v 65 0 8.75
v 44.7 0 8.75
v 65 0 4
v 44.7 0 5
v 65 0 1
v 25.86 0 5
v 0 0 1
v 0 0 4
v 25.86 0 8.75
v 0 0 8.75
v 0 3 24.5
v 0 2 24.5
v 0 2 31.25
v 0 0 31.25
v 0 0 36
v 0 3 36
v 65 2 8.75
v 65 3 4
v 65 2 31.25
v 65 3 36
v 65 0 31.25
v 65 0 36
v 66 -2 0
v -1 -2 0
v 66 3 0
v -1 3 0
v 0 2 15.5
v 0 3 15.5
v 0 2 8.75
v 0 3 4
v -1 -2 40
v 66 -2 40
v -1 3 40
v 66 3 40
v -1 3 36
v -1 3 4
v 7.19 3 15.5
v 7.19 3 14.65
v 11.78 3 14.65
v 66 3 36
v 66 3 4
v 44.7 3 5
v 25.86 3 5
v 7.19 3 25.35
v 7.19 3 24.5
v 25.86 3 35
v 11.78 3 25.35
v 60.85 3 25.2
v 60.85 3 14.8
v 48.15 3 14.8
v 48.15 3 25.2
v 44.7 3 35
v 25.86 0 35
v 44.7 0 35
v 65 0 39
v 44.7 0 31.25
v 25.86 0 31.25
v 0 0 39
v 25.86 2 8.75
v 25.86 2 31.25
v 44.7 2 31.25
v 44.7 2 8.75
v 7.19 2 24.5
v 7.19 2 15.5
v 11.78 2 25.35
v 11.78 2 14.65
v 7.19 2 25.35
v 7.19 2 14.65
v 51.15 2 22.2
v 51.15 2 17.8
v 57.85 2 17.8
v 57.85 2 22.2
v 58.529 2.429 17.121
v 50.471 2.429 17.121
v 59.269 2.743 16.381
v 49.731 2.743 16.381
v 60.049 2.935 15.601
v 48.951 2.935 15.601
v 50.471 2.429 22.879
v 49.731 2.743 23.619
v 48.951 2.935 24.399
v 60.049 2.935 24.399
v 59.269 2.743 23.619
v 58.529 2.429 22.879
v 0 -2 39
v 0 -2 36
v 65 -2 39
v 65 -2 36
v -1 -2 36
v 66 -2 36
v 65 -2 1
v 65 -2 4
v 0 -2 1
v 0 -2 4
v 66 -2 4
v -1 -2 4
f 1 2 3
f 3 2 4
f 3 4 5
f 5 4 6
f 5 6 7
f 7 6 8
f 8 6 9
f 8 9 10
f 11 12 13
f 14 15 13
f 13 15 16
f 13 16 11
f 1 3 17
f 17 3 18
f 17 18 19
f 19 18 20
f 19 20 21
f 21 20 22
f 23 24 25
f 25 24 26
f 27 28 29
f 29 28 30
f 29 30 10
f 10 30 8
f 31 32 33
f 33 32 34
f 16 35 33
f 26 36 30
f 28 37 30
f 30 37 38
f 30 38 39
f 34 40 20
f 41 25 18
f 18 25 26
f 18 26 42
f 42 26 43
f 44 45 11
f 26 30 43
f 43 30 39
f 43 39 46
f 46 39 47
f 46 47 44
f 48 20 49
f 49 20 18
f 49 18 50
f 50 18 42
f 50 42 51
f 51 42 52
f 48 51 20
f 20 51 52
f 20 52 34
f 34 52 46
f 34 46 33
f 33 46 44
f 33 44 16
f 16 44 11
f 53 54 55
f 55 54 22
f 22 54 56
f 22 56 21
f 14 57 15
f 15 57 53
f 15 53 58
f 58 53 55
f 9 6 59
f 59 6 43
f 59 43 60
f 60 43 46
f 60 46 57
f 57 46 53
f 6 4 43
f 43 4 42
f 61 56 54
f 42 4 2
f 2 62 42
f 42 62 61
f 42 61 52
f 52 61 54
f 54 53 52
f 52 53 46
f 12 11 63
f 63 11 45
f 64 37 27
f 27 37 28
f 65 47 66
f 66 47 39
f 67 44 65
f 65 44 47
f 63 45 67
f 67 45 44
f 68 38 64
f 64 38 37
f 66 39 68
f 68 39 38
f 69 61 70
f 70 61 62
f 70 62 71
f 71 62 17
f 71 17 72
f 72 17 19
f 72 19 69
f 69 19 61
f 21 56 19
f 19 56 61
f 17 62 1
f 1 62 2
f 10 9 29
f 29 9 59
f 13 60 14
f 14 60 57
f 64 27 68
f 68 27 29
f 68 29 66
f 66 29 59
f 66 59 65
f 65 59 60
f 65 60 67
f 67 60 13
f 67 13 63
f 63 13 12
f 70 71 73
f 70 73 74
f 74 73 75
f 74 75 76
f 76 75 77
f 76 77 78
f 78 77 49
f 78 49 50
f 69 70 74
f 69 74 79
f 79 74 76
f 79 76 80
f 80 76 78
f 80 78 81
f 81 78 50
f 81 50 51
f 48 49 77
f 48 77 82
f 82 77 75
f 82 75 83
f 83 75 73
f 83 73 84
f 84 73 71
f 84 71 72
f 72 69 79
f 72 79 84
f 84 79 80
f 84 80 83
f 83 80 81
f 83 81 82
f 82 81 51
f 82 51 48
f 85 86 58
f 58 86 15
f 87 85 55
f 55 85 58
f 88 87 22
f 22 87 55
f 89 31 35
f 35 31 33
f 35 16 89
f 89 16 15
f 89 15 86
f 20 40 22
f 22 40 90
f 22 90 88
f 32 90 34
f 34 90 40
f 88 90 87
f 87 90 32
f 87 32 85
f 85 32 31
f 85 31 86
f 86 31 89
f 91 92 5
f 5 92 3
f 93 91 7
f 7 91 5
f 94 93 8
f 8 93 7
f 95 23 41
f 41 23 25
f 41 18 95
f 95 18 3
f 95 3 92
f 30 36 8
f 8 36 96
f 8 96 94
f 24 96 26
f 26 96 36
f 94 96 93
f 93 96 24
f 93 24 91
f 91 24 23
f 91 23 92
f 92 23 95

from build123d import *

# Parameters (mm, degrees)
BOSS_EXTRUDE1_DEPTH     = 3
SKETCH2_W               = 6.7
SKETCH2_H               = 4.4
SKETCH2_W_2             = 18.84
SKETCH2_H_2             = 30
CUT_EXTRUDE1_DEPTH      = 77.380625816
CUT_EXTRUDE2_DEPTH      = 61.059054272
CUT_EXTRUDE2_DEPTH_BACK = 61.059054272
SKETCH5_W               = 22.5
SKETCH5_H               = 2
FILLET3_R               = 5
BOSS_EXTRUDE2_DEPTH     = 5


with BuildPart() as part:
    # Sketch1 → Boss-Extrude1 (new body)
    with BuildSketch(Plane(origin=(0, 0, 0), x_dir=(1, 0, 0), z_dir=(0, 1, 0))):
        Polygon((65, -38), (65, -40), (63, -40), (2, -40), (0, -40), (0, -38), (0, -2), (0, 0), (2, 0), (63, 0), (65, 0), (65, -2), align=None)
    extrude(amount=BOSS_EXTRUDE1_DEPTH)

    # Sketch2 → Cut-Extrude1 (cut, through all)
    with BuildSketch(Plane(origin=(0, 3, 0), x_dir=(1, 0, 0), z_dir=(0, 1, 0))):
        with Locations((54.5, -20)):
            Rectangle(SKETCH2_W, SKETCH2_H)
        Polygon((11.78, -25.35), (7.19, -25.35), (7.19, -24.5), (-0.16, -24.5), (-0.16, -15.5), (7.19, -15.5), (7.19, -14.65), (11.78, -14.65), align=None)
        with Locations((35.28, -20)):
            Rectangle(SKETCH2_W_2, SKETCH2_H_2)
    extrude(amount=-CUT_EXTRUDE1_DEPTH, mode=Mode.SUBTRACT)

    # Sketch5 → Cut-Extrude2 (cut, two sides: drawn at the far end of the back side and taken through both)
    with BuildSketch(Plane.ZY.offset(-44.7).offset(-CUT_EXTRUDE2_DEPTH_BACK)):
        with Locations((20, 1)):
            Rectangle(SKETCH5_W, SKETCH5_H)
    extrude(amount=CUT_EXTRUDE2_DEPTH + CUT_EXTRUDE2_DEPTH_BACK, mode=Mode.SUBTRACT)

    # Fillet3
    # the kernel refuses this fillet: 5 mm, written as the material it takes off along each edge
    with BuildSketch(Plane(origin=(57.85, 3, 22.2), x_dir=(0, 0, 1), z_dir=(-1, 0, 0)), Plane(origin=(51.15, 3, 17.8), x_dir=(0, 0, -1), z_dir=(1, 0, 0))) as fillet3_piece_1:
        with BuildLine():
            CenterArc((3, -5), FILLET3_R, 90, 36.869897646)
            Line((0, -1), (-0.06, -0.92))
            ThreePointArc((-0.06, -0.92), (-0.1, -0.5), (-0.1, 0))
            Line((-0.1, 0), (0, 0.1))
            Line((0, 0.1), (3, 0.1))
            Line((3, 0.1), (3, 0))
        make_face()
    extrude(amount=6.7, mode=Mode.SUBTRACT)
    with BuildSketch(Plane(origin=(57.85, 3, 17.8), x_dir=(1, 0, 0), z_dir=(0, 0, 1)), Plane(origin=(51.15, 3, 22.2), x_dir=(-1, 0, 0), z_dir=(0, 0, -1))) as fillet3_piece_2:
        with BuildLine():
            CenterArc((3, -5), FILLET3_R, 90, 36.869897646)
            Line((0, -1), (-0.06, -0.92))
            ThreePointArc((-0.06, -0.92), (-0.1, -0.5), (-0.1, 0))
            Line((-0.1, 0), (0, 0.1))
            Line((0, 0.1), (3, 0.1))
            Line((3, 0.1), (3, 0))
        make_face()
    extrude(amount=4.4, mode=Mode.SUBTRACT)
    with BuildSketch(Plane(origin=(57.85, 3, 17.8), x_dir=(1, 0, 0), z_dir=(0, 0, 1))) as fillet3_piece_3a_section:
        with BuildLine():
            CenterArc((3, -5), FILLET3_R, 90, 36.869897646)
            Line((0, -1), (-0.06, -0.92))
            ThreePointArc((-0.06, -0.92), (-0.1, -0.5), (-0.1, 0))
            Line((-0.1, 0), (0, 0.1))
            Line((0, 0.1), (3, 0.1))
            Line((3, 0.1), (3, 0))
        make_face()
    fillet3_piece_3a = extrude(amount=11.9, mode=Mode.PRIVATE)
    fillet3_piece_3a = split(fillet3_piece_3a, bisect_by=Plane(origin=(58.699672813, 2.773811602, 22.2), z_dir=(0, 0, 1)), keep=Keep.TOP, mode=Mode.PRIVATE)
    with BuildSketch(Plane(origin=(65.35, 3, 22.2), x_dir=(0, 0, 1), z_dir=(-1, 0, 0))) as fillet3_piece_3b_section:
        with BuildLine():
            CenterArc((3, -5), FILLET3_R, 90, 36.869897646)
            Line((0, -1), (-0.06, -0.92))
            ThreePointArc((-0.06, -0.92), (-0.1, -0.5), (-0.1, 0))
            Line((-0.1, 0), (0, 0.1))
            Line((0, 0.1), (3, 0.1))
            Line((3, 0.1), (3, 0))
        make_face()
    fillet3_piece_3b = extrude(amount=14.2, mode=Mode.PRIVATE)
    fillet3_piece_3b = split(fillet3_piece_3b, bisect_by=Plane(origin=(57.85, 2.773811602, 23.049672813), z_dir=(1, 0, 0)), keep=Keep.TOP, mode=Mode.PRIVATE)
    fillet3_piece_3 = fillet3_piece_3a & fillet3_piece_3b
    add(fillet3_piece_3, mode=Mode.SUBTRACT)
    with BuildSketch(Plane(origin=(57.85, 3, 22.2), x_dir=(0, 0, 1), z_dir=(-1, 0, 0))) as fillet3_piece_4a_section:
        with BuildLine():
            CenterArc((3, -5), FILLET3_R, 90, 36.869897646)
            Line((0, -1), (-0.06, -0.92))
            ThreePointArc((-0.06, -0.92), (-0.1, -0.5), (-0.1, 0))
            Line((-0.1, 0), (0, 0.1))
            Line((0, 0.1), (3, 0.1))
            Line((3, 0.1), (3, 0))
        make_face()
    fillet3_piece_4a = extrude(amount=14.2, mode=Mode.PRIVATE)
    fillet3_piece_4a = split(fillet3_piece_4a, bisect_by=Plane(origin=(51.15, 2.773811602, 23.049672813), z_dir=(-1, 0, 0)), keep=Keep.TOP, mode=Mode.PRIVATE)
    with BuildSketch(Plane(origin=(51.15, 3, 29.7), x_dir=(-1, 0, 0), z_dir=(0, 0, -1))) as fillet3_piece_4b_section:
        with BuildLine():
            CenterArc((3, -5), FILLET3_R, 90, 36.869897646)
            Line((0, -1), (-0.06, -0.92))
            ThreePointArc((-0.06, -0.92), (-0.1, -0.5), (-0.1, 0))
            Line((-0.1, 0), (0, 0.1))
            Line((0, 0.1), (3, 0.1))
            Line((3, 0.1), (3, 0))
        make_face()
    fillet3_piece_4b = extrude(amount=11.9, mode=Mode.PRIVATE)
    fillet3_piece_4b = split(fillet3_piece_4b, bisect_by=Plane(origin=(50.300327187, 2.773811602, 22.2), z_dir=(0, 0, 1)), keep=Keep.TOP, mode=Mode.PRIVATE)
    fillet3_piece_4 = fillet3_piece_4a & fillet3_piece_4b
    add(fillet3_piece_4, mode=Mode.SUBTRACT)
    with BuildSketch(Plane(origin=(51.15, 3, 17.8), x_dir=(0, 0, -1), z_dir=(1, 0, 0))) as fillet3_piece_5a_section:
        with BuildLine():
            CenterArc((3, -5), FILLET3_R, 90, 36.869897646)
            Line((0, -1), (-0.06, -0.92))
            ThreePointArc((-0.06, -0.92), (-0.1, -0.5), (-0.1, 0))
            Line((-0.1, 0), (0, 0.1))
            Line((0, 0.1), (3, 0.1))
            Line((3, 0.1), (3, 0))
        make_face()
    fillet3_piece_5a = extrude(amount=14.2, mode=Mode.PRIVATE)
    fillet3_piece_5a = split(fillet3_piece_5a, bisect_by=Plane(origin=(57.85, 2.773811602, 16.950327187), z_dir=(1, 0, 0)), keep=Keep.TOP, mode=Mode.PRIVATE)
    with BuildSketch(Plane(origin=(57.85, 3, 10.3), x_dir=(1, 0, 0), z_dir=(0, 0, 1))) as fillet3_piece_5b_section:
        with BuildLine():
            CenterArc((3, -5), FILLET3_R, 90, 36.869897646)
            Line((0, -1), (-0.06, -0.92))
            ThreePointArc((-0.06, -0.92), (-0.1, -0.5), (-0.1, 0))
            Line((-0.1, 0), (0, 0.1))
            Line((0, 0.1), (3, 0.1))
            Line((3, 0.1), (3, 0))
        make_face()
    fillet3_piece_5b = extrude(amount=11.9, mode=Mode.PRIVATE)
    fillet3_piece_5b = split(fillet3_piece_5b, bisect_by=Plane(origin=(58.699672813, 2.773811602, 17.8), z_dir=(0, 0, -1)), keep=Keep.TOP, mode=Mode.PRIVATE)
    fillet3_piece_5 = fillet3_piece_5a & fillet3_piece_5b
    add(fillet3_piece_5, mode=Mode.SUBTRACT)
    with BuildSketch(Plane(origin=(43.65, 3, 17.8), x_dir=(0, 0, -1), z_dir=(1, 0, 0))) as fillet3_piece_6a_section:
        with BuildLine():
            CenterArc((3, -5), FILLET3_R, 90, 36.869897646)
            Line((0, -1), (-0.06, -0.92))
            ThreePointArc((-0.06, -0.92), (-0.1, -0.5), (-0.1, 0))
            Line((-0.1, 0), (0, 0.1))
            Line((0, 0.1), (3, 0.1))
            Line((3, 0.1), (3, 0))
        make_face()
    fillet3_piece_6a = extrude(amount=14.2, mode=Mode.PRIVATE)
    fillet3_piece_6a = split(fillet3_piece_6a, bisect_by=Plane(origin=(51.15, 2.773811602, 16.950327187), z_dir=(-1, 0, 0)), keep=Keep.TOP, mode=Mode.PRIVATE)
    with BuildSketch(Plane(origin=(51.15, 3, 22.2), x_dir=(-1, 0, 0), z_dir=(0, 0, -1))) as fillet3_piece_6b_section:
        with BuildLine():
            CenterArc((3, -5), FILLET3_R, 90, 36.869897646)
            Line((0, -1), (-0.06, -0.92))
            ThreePointArc((-0.06, -0.92), (-0.1, -0.5), (-0.1, 0))
            Line((-0.1, 0), (0, 0.1))
            Line((0, 0.1), (3, 0.1))
            Line((3, 0.1), (3, 0))
        make_face()
    fillet3_piece_6b = extrude(amount=11.9, mode=Mode.PRIVATE)
    fillet3_piece_6b = split(fillet3_piece_6b, bisect_by=Plane(origin=(50.300327187, 2.773811602, 17.8), z_dir=(0, 0, -1)), keep=Keep.TOP, mode=Mode.PRIVATE)
    fillet3_piece_6 = fillet3_piece_6a & fillet3_piece_6b
    add(fillet3_piece_6, mode=Mode.SUBTRACT)

    # Sketch8 → Boss-Extrude2 (add)
    with BuildSketch(Plane(origin=(0, 3, 0), x_dir=(1, 0, 0), z_dir=(0, 1, 0))):
        Polygon((-1, -40), (66, -40), (66, -39), (66, -36), (65, -36), (65, -39), (0, -39), (0, -36), (-1, -36), (-1, -39), align=None)
        Polygon((-1, 0), (66, 0), (66, -1), (66, -4), (65, -4), (65, -1), (0, -1), (0, -4), (-1, -4), (-1, -1), align=None)
    extrude(amount=-BOSS_EXTRUDE2_DEPTH)


solid = part.part
